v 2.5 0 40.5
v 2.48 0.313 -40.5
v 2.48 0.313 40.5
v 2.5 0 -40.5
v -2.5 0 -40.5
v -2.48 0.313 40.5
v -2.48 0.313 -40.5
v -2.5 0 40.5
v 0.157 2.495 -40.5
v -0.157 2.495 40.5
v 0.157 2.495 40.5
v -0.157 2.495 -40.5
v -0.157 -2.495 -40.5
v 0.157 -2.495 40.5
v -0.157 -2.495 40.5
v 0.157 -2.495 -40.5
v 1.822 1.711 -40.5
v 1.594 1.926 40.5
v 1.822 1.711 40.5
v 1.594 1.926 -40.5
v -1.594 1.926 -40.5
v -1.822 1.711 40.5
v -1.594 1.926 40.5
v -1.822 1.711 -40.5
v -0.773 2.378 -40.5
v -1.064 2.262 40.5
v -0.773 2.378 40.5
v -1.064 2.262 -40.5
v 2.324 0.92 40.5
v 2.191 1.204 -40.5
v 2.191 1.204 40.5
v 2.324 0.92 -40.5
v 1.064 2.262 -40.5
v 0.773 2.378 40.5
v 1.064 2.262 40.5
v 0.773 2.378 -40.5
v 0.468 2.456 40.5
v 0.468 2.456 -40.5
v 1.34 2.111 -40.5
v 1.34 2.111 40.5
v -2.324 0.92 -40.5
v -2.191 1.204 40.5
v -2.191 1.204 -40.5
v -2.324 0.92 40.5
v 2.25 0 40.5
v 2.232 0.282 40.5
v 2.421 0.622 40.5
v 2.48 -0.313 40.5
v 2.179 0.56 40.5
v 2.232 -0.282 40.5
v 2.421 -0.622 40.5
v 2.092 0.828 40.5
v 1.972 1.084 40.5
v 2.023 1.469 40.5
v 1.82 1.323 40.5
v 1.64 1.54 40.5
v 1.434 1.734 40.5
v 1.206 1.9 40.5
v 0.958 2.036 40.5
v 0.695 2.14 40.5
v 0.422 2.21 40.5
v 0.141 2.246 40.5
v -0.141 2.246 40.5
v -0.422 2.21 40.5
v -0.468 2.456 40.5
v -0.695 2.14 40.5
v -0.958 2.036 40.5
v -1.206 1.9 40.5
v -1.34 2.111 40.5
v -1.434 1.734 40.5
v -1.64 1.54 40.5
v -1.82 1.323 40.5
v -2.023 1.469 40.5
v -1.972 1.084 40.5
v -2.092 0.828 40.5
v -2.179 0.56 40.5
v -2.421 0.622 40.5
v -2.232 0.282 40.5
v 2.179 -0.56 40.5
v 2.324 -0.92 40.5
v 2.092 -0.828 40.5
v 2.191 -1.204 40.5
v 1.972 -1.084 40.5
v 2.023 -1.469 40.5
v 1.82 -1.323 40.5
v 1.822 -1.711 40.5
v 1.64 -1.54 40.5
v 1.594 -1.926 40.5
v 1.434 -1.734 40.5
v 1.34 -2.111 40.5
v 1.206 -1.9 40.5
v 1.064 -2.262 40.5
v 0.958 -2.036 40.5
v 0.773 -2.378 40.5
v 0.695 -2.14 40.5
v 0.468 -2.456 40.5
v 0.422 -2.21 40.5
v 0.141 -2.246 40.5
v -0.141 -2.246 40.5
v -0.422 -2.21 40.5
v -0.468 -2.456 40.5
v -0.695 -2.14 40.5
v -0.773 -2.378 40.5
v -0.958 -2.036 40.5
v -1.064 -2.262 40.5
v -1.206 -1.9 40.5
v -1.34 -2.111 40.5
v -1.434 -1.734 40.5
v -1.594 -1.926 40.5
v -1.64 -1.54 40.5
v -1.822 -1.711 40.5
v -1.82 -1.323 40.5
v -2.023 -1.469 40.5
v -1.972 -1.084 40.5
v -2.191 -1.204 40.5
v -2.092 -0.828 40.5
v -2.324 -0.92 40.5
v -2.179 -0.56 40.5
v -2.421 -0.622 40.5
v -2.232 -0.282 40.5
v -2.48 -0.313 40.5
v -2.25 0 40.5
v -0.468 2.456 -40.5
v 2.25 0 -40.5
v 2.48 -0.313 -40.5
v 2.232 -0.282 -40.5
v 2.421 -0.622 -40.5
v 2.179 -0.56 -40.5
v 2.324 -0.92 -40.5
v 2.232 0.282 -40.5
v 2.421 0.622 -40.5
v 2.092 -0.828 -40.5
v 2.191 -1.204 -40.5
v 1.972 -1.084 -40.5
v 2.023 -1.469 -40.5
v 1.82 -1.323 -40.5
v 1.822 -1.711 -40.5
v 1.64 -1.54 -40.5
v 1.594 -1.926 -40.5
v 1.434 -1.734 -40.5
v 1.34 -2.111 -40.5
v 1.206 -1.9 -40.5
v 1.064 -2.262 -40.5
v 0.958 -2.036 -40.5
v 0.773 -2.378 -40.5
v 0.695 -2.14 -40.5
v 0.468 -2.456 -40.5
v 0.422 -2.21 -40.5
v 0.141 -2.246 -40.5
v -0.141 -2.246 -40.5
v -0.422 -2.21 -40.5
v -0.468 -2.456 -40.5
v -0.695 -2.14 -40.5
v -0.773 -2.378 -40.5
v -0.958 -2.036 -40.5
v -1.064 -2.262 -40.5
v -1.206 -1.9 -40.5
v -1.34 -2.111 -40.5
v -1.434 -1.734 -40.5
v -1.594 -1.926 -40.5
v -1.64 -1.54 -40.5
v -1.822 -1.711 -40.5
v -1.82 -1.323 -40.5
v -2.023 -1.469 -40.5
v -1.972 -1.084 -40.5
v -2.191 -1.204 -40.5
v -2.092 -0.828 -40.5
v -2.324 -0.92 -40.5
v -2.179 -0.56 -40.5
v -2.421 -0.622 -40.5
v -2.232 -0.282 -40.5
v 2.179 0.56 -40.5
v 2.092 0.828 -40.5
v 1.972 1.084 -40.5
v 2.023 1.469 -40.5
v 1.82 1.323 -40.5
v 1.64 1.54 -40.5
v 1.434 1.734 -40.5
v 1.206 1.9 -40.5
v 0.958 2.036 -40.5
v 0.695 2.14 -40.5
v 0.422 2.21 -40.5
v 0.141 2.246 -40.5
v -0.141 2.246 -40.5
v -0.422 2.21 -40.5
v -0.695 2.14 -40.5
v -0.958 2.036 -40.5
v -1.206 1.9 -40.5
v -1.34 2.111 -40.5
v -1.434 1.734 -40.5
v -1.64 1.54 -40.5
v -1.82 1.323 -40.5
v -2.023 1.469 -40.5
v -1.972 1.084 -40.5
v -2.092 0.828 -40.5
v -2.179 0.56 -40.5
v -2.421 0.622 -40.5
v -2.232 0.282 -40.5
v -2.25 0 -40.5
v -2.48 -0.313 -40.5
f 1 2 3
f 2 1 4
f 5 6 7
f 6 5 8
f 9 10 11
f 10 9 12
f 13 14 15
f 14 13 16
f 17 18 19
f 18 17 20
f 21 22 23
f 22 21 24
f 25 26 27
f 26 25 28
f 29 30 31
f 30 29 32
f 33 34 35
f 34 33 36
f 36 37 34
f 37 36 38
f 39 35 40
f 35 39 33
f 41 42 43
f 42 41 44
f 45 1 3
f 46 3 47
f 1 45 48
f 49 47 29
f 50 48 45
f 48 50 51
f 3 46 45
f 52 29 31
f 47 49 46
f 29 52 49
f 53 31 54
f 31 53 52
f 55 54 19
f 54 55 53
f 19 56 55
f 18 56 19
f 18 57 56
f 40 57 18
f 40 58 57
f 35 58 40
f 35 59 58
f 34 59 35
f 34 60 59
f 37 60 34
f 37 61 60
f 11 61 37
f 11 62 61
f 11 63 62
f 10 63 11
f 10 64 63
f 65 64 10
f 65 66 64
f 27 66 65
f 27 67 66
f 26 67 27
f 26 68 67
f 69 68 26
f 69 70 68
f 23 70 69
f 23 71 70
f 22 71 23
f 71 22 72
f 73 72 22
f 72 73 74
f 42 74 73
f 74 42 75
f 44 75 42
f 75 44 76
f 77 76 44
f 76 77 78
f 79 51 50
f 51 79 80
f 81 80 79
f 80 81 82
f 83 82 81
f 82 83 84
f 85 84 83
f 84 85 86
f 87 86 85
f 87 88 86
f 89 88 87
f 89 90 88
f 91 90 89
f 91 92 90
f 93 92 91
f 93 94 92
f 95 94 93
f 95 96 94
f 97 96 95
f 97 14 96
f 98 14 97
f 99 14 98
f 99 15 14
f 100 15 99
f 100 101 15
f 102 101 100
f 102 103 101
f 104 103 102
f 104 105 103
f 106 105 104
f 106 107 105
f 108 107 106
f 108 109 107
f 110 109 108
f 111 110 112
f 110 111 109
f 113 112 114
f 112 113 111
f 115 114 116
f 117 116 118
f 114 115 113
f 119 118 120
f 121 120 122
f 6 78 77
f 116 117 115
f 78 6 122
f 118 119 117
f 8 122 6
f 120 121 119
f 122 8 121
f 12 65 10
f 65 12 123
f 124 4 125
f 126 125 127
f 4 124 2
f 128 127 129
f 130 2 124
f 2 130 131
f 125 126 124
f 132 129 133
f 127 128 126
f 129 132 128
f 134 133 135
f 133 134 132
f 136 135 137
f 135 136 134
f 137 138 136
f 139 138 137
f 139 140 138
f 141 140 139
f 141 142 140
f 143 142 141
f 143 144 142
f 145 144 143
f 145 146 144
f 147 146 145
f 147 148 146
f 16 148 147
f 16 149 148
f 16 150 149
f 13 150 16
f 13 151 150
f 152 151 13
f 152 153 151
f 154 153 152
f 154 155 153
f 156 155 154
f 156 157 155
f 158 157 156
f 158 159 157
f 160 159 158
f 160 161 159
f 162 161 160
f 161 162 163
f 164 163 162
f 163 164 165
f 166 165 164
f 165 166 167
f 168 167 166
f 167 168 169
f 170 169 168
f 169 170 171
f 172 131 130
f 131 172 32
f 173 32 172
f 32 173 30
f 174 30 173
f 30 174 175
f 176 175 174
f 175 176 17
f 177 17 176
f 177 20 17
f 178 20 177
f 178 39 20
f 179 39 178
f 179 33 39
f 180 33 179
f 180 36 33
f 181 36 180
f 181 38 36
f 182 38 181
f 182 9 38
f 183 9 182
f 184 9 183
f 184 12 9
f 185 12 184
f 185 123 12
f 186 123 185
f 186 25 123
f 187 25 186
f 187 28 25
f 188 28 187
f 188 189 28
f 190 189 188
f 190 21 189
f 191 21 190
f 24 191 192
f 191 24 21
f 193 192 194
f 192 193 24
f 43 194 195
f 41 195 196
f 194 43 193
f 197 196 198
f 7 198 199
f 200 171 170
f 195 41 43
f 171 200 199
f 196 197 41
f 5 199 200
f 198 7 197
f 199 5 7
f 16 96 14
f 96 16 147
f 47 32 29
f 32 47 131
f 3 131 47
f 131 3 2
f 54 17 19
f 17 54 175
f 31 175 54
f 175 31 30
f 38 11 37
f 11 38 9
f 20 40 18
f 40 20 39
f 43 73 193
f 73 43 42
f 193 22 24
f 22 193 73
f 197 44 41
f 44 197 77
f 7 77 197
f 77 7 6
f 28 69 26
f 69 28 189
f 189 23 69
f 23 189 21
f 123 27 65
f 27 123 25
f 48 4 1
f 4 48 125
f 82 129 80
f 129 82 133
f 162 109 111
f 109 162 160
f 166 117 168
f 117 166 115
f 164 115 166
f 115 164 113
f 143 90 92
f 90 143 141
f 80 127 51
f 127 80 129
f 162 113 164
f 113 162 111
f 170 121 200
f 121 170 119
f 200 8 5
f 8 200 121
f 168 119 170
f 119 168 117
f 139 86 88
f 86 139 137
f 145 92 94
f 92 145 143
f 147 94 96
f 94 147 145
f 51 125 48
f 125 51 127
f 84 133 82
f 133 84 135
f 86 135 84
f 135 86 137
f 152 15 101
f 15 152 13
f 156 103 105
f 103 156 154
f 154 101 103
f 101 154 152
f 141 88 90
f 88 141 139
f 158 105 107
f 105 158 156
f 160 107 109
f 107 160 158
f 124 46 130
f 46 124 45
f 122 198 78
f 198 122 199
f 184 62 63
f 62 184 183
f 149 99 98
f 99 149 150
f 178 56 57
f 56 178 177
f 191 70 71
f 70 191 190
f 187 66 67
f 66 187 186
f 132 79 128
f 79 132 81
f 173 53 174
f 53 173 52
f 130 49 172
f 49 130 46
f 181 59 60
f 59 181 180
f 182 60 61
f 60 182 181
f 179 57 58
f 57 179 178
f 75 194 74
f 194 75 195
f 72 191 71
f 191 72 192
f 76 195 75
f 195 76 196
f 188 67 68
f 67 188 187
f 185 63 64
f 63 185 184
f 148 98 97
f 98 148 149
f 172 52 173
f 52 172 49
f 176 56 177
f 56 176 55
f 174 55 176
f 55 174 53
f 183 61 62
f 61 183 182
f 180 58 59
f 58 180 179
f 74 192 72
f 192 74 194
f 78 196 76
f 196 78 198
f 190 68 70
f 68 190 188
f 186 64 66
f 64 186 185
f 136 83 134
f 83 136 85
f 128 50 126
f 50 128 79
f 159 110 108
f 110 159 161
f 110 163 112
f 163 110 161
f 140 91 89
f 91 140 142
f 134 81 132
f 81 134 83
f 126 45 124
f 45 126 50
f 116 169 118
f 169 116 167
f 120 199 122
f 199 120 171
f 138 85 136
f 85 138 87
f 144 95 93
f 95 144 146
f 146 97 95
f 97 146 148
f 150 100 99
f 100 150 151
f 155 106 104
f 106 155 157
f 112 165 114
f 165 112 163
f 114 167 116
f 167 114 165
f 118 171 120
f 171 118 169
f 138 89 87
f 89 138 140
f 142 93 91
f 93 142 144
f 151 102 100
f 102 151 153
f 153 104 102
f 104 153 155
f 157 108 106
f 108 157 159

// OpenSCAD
$fn = 50;


difference() {
	union() {
		translate(v = [0, 0, -40.5000000000]) {
			cylinder(h = 81, r = 2.5000000000);
		}
	}
	union() {
		translate(v = [0, 0, -100.0000000000]) {
			cylinder(h = 200, r = 2.2500000000);
		}
	}
}
